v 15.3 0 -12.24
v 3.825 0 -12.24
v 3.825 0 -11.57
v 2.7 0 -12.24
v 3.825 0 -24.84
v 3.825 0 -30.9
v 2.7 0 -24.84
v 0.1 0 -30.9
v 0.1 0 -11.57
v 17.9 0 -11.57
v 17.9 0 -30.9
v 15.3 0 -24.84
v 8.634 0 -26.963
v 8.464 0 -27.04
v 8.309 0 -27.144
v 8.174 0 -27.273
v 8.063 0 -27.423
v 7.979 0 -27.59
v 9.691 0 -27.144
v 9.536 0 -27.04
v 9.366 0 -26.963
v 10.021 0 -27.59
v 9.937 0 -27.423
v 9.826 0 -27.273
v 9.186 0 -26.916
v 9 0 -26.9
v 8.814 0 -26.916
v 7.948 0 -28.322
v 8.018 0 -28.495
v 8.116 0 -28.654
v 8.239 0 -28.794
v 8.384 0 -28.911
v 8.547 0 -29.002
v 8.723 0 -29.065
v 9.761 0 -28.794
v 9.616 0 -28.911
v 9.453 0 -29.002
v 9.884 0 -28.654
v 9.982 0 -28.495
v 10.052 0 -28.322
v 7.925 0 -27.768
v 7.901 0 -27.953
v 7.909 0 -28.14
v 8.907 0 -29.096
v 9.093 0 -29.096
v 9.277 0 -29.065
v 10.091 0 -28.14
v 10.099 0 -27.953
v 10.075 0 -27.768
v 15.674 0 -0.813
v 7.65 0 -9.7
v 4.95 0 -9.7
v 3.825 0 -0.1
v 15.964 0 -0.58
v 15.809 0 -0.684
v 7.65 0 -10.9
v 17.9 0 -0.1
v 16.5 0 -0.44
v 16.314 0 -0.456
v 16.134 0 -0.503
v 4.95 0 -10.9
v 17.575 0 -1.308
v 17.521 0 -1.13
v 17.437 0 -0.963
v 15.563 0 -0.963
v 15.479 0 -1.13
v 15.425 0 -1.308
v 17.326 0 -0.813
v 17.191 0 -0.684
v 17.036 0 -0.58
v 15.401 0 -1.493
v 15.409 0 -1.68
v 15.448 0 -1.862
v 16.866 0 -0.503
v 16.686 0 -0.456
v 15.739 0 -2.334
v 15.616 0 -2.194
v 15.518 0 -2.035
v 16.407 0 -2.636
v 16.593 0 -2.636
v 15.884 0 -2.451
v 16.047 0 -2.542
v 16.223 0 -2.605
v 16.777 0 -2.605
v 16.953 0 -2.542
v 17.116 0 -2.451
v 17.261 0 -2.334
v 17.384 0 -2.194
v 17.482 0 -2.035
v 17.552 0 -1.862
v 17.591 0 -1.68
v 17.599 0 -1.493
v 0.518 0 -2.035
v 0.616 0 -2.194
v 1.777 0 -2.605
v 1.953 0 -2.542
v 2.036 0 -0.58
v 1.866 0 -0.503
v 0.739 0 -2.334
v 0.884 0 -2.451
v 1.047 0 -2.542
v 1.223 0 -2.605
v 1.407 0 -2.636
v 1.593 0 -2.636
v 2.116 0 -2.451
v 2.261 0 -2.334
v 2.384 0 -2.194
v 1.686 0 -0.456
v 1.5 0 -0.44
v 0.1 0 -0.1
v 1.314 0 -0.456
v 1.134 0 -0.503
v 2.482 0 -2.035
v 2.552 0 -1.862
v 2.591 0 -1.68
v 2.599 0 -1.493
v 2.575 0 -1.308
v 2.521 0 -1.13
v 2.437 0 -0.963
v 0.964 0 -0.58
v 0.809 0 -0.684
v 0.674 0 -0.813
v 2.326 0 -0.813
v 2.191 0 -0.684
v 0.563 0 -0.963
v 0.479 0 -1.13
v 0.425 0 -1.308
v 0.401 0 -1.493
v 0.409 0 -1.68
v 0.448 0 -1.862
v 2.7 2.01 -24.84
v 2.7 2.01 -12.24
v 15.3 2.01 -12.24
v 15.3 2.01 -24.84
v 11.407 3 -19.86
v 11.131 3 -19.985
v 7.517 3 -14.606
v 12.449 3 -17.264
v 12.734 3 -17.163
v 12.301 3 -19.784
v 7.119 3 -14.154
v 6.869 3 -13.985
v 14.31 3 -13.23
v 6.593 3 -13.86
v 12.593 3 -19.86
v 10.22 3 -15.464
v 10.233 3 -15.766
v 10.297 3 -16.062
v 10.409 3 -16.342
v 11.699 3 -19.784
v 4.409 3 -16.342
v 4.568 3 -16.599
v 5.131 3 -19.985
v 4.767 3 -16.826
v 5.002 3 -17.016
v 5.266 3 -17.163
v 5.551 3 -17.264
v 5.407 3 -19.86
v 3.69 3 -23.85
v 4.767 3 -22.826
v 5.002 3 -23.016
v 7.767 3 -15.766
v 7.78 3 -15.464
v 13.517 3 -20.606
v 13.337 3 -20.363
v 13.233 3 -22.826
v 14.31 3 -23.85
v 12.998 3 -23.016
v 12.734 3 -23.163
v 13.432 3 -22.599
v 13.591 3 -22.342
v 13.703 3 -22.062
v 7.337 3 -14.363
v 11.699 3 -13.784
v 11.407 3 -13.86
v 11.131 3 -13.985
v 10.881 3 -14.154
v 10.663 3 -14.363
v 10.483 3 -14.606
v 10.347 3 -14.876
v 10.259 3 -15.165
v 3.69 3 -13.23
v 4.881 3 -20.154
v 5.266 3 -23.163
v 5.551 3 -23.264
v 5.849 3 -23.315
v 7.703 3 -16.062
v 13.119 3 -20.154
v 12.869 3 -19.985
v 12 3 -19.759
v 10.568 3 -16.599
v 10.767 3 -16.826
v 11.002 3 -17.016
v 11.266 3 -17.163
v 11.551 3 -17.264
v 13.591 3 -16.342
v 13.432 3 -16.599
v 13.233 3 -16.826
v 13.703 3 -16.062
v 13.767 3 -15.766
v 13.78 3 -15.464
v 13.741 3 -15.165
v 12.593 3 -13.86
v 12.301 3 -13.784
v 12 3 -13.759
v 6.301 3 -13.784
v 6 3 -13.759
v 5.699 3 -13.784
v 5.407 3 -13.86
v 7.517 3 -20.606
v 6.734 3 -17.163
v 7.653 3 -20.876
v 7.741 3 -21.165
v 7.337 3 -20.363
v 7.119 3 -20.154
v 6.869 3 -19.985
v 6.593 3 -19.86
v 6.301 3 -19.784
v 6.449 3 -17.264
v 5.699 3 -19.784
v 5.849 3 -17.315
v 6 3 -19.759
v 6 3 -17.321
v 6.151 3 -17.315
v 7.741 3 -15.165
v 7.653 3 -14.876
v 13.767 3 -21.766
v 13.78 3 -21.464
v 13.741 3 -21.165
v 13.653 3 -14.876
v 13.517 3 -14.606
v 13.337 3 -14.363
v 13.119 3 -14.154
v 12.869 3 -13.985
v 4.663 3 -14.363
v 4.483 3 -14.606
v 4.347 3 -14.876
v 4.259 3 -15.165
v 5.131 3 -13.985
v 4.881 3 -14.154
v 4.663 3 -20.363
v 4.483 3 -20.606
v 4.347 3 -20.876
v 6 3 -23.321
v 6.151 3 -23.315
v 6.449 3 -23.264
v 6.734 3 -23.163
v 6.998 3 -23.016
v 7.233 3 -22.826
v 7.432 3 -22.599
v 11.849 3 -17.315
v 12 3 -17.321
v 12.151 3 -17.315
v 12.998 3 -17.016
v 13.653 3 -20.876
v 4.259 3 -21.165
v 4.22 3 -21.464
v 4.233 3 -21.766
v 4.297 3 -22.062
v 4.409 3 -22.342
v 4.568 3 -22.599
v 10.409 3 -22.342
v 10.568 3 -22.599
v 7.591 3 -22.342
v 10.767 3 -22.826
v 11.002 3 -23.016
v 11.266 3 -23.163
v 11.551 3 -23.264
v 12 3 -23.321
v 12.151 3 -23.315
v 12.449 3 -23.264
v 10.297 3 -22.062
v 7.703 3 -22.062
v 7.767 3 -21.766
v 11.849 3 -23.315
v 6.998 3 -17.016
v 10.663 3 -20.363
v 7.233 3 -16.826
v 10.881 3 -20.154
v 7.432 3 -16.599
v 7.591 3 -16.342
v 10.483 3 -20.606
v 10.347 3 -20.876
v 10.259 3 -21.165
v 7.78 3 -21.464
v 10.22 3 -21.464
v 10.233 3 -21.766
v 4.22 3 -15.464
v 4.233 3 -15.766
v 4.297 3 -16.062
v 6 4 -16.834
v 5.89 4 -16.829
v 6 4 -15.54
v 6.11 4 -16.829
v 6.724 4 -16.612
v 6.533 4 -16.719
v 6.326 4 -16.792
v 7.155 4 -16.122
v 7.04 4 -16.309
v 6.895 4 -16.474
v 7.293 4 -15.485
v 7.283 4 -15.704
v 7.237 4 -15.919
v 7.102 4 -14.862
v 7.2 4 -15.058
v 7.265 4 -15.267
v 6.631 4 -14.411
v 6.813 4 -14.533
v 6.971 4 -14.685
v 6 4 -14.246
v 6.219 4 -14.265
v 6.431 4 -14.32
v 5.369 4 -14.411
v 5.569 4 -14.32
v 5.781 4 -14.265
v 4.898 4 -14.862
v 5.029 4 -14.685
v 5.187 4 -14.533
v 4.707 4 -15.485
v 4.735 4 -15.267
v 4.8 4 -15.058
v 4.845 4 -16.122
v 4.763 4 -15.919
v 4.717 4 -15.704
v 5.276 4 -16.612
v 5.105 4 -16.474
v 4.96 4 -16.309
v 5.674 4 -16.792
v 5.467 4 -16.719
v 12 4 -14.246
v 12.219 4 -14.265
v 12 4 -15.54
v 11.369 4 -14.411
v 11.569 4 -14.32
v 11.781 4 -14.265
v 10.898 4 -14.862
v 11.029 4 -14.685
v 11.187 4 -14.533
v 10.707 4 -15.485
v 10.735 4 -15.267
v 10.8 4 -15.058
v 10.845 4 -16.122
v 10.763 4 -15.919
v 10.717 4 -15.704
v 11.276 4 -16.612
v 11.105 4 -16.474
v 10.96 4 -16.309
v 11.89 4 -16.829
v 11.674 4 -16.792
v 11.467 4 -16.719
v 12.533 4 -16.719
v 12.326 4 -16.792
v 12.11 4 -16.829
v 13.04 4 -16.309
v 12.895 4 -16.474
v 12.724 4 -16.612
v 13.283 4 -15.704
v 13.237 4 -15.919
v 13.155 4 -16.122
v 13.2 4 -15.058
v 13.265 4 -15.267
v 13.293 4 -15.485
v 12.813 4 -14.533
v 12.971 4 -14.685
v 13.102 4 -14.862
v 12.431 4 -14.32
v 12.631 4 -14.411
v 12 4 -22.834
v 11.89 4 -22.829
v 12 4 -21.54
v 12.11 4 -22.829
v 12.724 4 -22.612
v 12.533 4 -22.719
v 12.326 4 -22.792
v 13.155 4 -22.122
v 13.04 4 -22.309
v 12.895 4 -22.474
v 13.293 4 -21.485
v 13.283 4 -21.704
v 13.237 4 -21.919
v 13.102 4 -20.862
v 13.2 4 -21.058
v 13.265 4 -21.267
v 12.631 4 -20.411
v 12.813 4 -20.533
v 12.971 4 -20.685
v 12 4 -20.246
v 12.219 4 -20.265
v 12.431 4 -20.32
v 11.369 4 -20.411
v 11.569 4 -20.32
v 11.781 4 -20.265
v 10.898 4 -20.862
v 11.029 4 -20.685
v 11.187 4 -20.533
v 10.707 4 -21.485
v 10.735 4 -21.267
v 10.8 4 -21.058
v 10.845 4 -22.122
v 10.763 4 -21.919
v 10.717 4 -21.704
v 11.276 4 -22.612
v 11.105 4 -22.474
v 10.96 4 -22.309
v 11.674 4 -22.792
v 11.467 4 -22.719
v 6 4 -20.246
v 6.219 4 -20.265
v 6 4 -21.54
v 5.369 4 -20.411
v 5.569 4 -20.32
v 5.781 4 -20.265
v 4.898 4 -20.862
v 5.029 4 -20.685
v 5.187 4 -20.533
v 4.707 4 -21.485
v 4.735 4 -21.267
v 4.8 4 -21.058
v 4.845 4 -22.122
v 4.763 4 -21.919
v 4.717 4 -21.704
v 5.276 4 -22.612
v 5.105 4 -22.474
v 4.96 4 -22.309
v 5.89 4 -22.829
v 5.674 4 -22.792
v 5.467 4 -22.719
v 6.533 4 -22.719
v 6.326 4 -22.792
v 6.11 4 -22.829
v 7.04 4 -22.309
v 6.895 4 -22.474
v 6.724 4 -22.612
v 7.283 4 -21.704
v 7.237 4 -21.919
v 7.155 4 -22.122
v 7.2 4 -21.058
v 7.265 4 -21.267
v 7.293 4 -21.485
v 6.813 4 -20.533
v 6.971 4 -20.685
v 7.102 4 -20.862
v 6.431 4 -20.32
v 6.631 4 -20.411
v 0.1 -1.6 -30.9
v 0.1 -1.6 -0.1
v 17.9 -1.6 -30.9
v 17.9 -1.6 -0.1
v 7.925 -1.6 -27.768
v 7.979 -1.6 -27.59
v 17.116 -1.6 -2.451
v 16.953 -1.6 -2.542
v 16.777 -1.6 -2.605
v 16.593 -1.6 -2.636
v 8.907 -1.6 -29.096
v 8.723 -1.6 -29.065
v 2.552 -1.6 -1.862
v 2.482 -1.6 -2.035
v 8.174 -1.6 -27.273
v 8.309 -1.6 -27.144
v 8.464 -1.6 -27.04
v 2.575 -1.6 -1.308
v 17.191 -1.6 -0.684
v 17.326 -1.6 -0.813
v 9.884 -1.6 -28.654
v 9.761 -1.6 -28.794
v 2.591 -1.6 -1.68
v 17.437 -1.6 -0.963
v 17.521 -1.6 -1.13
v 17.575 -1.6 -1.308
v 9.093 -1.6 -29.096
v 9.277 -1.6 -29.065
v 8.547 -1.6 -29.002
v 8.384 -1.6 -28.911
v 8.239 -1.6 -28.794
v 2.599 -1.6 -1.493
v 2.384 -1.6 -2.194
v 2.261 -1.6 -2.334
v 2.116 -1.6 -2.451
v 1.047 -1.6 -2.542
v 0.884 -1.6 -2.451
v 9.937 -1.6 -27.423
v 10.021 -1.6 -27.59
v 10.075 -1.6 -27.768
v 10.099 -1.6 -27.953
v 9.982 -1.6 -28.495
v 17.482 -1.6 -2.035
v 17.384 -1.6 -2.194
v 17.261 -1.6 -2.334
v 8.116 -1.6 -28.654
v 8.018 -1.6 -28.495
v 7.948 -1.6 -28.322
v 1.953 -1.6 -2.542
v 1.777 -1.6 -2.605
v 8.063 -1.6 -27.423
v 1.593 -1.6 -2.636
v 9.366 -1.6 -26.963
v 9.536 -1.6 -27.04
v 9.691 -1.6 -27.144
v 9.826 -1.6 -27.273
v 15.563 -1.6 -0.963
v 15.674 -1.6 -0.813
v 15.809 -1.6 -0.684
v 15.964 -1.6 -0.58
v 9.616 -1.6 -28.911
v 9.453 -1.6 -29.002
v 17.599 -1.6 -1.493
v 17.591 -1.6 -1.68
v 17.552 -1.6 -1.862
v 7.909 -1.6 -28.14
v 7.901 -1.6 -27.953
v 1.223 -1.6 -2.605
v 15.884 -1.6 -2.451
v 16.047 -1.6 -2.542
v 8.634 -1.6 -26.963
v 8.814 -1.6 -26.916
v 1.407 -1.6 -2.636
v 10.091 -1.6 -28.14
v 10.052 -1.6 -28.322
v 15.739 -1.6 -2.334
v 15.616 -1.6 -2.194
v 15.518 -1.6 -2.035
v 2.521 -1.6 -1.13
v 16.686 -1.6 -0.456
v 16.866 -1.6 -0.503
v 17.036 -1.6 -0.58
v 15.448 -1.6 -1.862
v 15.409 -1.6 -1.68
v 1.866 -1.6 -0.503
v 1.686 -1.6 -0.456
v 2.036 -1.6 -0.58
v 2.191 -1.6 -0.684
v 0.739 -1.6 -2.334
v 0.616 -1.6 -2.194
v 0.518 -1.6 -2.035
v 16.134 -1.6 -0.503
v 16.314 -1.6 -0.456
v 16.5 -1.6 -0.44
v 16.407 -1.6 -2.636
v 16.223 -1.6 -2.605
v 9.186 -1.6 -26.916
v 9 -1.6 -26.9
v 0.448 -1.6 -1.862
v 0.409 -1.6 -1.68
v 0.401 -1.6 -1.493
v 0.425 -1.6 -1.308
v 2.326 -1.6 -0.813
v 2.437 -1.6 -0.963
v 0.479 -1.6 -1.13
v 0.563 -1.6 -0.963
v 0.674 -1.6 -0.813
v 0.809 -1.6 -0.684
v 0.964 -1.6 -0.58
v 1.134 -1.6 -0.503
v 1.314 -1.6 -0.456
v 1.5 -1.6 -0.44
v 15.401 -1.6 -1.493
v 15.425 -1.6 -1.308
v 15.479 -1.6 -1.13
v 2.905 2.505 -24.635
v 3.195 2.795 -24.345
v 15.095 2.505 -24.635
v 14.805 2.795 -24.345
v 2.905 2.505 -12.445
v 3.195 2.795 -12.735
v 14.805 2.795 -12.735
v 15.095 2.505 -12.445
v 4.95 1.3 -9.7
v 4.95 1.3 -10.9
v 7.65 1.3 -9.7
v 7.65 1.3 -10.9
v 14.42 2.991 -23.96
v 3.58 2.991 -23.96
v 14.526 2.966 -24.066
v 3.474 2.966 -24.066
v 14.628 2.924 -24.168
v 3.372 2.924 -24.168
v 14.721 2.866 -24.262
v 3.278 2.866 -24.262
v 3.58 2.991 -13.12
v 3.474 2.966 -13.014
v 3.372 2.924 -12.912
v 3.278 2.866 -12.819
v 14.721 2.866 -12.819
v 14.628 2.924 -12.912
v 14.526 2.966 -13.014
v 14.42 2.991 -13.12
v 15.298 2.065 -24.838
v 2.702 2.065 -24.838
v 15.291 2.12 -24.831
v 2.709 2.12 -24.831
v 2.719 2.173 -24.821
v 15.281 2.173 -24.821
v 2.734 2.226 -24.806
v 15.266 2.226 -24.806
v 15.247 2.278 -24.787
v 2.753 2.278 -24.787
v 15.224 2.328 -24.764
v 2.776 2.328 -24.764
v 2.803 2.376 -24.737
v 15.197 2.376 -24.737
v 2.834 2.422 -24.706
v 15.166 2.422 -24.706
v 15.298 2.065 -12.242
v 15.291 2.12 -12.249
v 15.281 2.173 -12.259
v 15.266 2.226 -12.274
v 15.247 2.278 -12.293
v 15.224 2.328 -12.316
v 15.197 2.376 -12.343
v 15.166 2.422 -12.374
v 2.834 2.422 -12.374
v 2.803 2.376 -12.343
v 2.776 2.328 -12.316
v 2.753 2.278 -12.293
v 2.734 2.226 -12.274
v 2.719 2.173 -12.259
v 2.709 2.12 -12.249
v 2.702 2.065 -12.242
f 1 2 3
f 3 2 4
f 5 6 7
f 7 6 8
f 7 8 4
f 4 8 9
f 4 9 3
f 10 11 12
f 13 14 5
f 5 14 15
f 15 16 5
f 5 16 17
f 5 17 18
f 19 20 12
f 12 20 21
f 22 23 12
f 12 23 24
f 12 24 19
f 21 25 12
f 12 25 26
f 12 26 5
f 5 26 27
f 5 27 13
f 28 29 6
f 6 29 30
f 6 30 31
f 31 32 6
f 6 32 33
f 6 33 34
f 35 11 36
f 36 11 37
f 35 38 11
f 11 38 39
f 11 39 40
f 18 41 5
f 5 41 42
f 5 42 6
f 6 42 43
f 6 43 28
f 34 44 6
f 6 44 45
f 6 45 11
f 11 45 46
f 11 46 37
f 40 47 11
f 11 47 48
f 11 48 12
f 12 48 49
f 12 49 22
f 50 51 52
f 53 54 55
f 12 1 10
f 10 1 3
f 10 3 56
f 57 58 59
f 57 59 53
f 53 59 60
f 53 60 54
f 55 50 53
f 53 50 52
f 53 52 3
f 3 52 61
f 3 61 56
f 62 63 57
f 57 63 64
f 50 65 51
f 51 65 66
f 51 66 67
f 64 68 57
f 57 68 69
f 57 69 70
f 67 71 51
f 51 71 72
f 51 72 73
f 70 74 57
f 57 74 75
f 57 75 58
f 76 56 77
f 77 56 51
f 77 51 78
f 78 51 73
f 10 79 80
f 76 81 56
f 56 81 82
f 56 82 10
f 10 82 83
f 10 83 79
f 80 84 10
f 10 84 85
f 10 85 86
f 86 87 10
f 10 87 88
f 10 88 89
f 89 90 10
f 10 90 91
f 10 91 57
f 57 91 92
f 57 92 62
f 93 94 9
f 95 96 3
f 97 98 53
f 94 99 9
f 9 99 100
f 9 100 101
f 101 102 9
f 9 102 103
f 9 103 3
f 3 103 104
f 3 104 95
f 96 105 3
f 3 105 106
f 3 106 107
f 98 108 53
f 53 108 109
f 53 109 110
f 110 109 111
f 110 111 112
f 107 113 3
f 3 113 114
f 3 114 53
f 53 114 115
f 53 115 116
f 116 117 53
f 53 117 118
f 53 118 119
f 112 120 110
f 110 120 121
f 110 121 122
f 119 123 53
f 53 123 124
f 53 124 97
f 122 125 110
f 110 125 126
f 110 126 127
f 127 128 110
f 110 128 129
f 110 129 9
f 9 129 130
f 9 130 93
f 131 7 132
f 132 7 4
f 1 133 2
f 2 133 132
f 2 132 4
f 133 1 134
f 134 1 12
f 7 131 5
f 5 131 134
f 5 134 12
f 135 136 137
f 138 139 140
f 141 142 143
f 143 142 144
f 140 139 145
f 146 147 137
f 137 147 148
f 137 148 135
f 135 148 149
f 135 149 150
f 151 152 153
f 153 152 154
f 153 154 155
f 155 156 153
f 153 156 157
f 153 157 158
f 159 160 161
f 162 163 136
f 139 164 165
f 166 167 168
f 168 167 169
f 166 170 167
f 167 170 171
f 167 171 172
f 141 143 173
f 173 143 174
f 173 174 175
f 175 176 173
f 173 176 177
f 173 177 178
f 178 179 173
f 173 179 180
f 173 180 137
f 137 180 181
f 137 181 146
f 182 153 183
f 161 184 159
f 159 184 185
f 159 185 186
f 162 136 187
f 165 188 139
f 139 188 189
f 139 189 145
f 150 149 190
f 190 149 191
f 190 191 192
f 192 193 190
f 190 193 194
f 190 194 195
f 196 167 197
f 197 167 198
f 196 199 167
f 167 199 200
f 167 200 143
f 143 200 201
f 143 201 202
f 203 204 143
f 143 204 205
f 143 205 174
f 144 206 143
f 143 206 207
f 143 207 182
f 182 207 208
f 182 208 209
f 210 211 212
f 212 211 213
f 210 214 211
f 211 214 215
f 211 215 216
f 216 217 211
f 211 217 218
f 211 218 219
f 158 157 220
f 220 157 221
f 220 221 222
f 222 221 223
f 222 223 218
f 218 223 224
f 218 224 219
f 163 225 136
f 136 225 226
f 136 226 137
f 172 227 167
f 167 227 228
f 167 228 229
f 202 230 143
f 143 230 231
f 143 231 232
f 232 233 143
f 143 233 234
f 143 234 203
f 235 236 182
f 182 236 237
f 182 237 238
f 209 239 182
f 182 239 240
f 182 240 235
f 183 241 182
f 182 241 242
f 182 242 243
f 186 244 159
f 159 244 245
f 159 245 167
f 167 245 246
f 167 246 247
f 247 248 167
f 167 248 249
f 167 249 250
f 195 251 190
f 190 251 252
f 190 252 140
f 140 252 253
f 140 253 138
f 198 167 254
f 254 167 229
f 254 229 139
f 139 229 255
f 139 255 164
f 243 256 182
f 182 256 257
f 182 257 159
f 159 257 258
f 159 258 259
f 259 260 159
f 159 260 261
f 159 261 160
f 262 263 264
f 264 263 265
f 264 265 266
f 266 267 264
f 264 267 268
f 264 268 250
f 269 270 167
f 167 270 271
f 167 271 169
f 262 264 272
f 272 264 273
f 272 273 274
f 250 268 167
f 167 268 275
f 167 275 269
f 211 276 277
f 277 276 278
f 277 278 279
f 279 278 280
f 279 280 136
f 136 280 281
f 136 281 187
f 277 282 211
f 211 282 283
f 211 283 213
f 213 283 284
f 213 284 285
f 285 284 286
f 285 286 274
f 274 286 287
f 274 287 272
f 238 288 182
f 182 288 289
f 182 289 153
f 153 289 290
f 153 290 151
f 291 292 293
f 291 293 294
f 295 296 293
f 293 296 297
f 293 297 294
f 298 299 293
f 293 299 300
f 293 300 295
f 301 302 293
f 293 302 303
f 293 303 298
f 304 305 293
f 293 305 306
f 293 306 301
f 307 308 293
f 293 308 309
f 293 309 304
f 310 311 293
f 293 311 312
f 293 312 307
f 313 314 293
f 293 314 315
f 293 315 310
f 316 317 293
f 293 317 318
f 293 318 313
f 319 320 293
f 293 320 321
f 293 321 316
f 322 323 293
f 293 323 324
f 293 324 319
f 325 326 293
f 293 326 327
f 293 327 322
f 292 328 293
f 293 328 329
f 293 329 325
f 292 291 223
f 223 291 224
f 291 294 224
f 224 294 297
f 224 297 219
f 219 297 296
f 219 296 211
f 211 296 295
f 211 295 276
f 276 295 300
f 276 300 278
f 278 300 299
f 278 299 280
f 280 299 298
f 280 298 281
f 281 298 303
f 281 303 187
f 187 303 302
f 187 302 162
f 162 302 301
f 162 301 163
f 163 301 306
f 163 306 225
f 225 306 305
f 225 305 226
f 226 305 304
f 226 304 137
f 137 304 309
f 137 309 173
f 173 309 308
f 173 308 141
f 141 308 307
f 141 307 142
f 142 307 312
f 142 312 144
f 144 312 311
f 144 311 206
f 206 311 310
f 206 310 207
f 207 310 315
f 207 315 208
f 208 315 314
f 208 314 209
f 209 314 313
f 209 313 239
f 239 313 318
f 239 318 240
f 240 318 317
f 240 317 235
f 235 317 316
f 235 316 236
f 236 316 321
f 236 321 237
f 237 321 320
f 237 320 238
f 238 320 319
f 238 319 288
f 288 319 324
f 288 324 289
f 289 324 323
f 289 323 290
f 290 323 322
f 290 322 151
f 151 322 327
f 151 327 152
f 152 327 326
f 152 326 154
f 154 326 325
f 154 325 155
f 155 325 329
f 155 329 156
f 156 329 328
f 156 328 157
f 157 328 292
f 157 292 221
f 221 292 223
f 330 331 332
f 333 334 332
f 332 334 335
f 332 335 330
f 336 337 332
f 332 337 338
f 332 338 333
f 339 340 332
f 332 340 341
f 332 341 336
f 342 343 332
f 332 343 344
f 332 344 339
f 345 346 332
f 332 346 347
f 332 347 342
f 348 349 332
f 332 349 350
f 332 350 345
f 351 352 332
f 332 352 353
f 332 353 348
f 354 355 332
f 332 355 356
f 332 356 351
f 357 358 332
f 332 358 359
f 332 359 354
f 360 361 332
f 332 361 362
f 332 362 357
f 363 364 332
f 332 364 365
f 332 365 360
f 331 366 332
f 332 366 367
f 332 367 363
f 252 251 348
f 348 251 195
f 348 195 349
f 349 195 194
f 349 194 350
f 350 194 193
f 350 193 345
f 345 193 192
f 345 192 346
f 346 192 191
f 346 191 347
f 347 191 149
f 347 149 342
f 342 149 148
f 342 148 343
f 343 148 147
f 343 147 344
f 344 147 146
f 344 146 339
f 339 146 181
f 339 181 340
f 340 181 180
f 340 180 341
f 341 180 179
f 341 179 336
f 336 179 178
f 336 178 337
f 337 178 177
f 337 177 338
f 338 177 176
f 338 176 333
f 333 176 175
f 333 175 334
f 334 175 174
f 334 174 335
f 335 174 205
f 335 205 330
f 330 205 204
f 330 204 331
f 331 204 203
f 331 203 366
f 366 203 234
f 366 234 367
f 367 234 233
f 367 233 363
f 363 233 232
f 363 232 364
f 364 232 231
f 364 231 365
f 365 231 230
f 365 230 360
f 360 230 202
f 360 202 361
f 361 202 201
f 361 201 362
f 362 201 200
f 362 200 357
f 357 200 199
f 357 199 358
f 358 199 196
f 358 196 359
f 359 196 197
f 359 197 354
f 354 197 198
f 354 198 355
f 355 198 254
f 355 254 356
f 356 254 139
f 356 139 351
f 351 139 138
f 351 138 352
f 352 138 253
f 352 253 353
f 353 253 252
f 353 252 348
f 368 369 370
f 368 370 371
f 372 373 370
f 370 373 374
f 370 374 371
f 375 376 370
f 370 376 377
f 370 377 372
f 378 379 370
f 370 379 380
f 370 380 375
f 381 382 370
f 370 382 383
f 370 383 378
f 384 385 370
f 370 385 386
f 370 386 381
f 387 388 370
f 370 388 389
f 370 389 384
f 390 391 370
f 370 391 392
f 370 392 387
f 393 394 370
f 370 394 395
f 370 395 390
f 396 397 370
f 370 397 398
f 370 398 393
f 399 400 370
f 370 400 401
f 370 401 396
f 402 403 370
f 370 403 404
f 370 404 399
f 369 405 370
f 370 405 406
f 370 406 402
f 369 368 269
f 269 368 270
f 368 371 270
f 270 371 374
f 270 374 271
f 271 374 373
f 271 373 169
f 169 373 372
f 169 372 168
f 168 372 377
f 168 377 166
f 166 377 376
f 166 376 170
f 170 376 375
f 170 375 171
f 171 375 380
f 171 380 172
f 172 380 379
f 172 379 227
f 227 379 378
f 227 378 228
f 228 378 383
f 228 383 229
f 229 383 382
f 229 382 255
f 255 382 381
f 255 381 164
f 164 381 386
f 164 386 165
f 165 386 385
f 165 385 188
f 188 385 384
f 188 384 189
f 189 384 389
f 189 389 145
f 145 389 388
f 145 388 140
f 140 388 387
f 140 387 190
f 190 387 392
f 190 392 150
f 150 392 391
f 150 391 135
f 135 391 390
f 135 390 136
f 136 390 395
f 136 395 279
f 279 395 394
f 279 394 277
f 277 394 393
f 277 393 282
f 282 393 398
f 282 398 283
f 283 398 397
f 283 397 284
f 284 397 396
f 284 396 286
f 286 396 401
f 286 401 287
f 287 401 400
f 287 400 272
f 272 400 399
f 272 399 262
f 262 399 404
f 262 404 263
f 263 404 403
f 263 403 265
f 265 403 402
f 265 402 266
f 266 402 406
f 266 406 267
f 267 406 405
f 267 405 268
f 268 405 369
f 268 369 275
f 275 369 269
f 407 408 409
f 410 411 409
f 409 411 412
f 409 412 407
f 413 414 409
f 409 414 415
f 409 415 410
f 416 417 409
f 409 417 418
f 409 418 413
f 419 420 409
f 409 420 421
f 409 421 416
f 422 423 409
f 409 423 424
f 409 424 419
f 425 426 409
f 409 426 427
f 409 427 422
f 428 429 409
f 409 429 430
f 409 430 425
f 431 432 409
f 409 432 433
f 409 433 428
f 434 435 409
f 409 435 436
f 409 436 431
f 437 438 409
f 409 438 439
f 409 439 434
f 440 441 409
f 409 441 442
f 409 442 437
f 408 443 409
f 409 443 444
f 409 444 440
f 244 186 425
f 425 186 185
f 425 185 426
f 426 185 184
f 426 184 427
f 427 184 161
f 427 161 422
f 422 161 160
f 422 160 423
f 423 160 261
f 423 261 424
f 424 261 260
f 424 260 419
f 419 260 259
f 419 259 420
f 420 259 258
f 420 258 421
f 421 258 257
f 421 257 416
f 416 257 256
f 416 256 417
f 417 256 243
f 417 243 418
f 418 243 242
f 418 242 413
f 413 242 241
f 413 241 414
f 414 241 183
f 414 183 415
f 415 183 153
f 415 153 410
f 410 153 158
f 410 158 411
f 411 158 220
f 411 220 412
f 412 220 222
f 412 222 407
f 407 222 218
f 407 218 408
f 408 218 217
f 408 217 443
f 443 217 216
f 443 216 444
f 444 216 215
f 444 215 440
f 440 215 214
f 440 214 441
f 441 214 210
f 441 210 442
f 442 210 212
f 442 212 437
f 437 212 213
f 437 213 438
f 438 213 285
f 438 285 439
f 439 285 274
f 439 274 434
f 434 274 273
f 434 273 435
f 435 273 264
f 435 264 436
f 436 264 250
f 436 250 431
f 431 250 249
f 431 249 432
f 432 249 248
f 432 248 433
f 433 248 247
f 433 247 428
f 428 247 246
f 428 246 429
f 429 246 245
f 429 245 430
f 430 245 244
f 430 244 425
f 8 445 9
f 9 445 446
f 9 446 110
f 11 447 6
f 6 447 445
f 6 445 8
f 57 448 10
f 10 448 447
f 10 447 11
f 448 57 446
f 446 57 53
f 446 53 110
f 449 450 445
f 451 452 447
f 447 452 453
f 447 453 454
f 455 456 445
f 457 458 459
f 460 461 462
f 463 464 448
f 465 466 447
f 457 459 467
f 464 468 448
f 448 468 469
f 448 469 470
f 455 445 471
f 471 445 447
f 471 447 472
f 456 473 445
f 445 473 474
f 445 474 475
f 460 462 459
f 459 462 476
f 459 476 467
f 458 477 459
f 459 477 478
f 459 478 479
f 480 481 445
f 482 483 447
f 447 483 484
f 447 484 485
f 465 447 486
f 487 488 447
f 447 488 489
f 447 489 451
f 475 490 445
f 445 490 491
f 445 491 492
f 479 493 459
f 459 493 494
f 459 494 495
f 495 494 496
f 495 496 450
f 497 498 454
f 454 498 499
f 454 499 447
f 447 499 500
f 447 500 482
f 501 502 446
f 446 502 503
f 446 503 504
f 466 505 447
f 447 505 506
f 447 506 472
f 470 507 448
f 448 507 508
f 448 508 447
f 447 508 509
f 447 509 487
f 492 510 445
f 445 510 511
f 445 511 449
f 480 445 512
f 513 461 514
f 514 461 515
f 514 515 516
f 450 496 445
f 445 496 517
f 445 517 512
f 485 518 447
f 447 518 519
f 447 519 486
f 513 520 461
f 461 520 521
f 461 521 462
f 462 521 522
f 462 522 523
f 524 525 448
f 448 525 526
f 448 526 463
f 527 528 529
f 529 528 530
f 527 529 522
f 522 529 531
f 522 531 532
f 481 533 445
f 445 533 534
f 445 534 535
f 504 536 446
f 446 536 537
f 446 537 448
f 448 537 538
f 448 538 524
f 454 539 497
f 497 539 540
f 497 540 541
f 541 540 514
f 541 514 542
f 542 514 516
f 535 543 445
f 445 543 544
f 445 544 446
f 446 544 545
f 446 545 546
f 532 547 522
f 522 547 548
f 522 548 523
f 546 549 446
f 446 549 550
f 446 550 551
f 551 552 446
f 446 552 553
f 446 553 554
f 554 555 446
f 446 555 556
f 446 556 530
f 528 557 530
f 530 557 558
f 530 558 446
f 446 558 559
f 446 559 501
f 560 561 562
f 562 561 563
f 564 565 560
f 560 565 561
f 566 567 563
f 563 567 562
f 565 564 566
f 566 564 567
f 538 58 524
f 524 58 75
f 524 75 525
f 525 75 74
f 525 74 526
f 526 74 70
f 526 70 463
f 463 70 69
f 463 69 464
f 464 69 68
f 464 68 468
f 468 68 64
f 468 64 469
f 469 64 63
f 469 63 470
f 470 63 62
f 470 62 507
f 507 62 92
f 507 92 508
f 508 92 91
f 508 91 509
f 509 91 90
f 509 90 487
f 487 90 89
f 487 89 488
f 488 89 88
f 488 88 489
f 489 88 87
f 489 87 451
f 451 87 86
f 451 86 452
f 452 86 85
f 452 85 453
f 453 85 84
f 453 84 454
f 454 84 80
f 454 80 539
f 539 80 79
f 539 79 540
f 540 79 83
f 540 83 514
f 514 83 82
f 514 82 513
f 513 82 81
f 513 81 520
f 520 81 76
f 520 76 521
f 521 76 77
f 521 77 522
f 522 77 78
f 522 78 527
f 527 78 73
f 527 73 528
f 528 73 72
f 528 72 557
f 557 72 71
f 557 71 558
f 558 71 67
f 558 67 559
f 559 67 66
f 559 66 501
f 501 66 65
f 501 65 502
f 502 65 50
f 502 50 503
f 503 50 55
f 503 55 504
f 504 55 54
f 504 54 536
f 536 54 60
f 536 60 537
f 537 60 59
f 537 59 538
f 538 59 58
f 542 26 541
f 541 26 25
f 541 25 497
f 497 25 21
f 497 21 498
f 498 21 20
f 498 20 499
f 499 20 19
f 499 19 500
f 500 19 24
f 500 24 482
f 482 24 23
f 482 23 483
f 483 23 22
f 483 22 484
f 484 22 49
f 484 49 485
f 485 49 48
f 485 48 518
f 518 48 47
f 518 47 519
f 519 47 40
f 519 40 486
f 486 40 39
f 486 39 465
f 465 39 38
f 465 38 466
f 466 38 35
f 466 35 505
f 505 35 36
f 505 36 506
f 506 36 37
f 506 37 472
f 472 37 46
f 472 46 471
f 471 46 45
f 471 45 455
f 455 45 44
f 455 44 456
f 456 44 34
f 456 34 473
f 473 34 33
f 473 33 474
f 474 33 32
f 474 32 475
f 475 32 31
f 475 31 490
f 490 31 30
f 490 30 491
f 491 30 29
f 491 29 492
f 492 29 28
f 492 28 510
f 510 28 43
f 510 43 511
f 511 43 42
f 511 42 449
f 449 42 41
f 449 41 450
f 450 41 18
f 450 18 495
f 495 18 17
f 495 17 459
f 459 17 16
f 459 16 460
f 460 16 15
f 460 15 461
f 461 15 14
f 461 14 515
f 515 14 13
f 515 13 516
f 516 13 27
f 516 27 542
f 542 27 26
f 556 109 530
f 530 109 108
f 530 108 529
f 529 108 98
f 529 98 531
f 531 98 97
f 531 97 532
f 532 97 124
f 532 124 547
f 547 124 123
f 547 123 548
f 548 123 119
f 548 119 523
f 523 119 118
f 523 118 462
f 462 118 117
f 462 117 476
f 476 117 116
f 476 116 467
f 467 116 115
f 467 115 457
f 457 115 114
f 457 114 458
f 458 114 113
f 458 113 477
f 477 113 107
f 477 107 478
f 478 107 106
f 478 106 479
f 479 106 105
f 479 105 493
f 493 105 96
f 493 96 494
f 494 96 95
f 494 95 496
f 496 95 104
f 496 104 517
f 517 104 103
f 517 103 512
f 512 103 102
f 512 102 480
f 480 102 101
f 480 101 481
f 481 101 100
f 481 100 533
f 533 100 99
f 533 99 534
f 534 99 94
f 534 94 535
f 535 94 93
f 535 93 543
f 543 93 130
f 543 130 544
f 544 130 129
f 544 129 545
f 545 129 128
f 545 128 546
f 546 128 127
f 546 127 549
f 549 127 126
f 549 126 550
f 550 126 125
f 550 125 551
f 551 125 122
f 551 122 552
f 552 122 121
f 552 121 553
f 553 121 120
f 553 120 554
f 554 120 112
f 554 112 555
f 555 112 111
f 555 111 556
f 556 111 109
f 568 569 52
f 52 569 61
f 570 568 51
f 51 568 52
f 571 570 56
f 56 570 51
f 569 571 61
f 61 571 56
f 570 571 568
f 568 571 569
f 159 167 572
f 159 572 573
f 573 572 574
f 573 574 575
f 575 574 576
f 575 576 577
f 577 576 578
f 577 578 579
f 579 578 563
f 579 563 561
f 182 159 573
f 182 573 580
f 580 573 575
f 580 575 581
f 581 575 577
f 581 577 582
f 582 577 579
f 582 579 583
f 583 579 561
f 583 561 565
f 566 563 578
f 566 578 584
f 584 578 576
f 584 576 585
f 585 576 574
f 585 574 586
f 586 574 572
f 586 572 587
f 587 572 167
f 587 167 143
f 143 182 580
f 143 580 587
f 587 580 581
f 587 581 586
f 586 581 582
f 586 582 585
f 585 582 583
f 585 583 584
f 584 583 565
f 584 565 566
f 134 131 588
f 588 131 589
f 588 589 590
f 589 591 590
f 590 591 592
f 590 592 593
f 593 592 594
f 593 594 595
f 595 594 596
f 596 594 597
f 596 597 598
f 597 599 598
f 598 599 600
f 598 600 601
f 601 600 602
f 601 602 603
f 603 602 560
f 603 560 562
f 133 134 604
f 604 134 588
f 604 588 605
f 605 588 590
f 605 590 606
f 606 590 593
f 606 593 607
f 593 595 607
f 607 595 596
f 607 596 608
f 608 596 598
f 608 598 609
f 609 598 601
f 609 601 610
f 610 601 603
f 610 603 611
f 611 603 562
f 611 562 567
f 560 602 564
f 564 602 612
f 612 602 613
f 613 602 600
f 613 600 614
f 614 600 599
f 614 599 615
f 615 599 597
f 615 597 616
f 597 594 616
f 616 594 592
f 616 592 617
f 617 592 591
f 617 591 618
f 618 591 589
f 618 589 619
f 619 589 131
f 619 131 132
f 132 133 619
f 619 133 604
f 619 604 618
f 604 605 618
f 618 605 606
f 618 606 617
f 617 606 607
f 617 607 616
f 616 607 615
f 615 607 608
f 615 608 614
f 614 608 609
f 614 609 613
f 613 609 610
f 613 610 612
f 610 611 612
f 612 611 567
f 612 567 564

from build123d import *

# Parameters (mm, degrees)
SKETCH1_W           = 12.6
SKETCH1_H           = 12.6
BOSS_EXTRUDE1_DEPTH = 1.3
SKETCH3_R           = 1.29375
BOSS_EXTRUDE3_DEPTH = 2.7
DRAFT1_ANGLE        = 26
SKETCH4_W           = 12.6
SKETCH4_H           = 12.6
BOSS_EXTRUDE4_DEPTH = 1.7
SKETCH5_W           = 17.8
SKETCH5_H           = 30.8
BOSS_EXTRUDE5_DEPTH = 1.6
FILLET1_SIZE        = 0.7
SKETCH7_R           = 1.1
CUT_EXTRUDE1_DEPTH  = 36.933549783
SKETCH8_W           = 2.7
SKETCH8_H           = 1.2
CAPACITOR_DEPTH     = 1.3
FILLET5_R           = 0.7


with BuildPart() as part:
    # Sketch1 → Boss-Extrude1 (new body)
    with BuildSketch(Plane(origin=(0, 0, 0), x_dir=(1, 0, 0), z_dir=(0, 1, 0))):
        with Locations((9, 18.54)):
            Rectangle(SKETCH1_W, SKETCH1_H)
    extrude(amount=BOSS_EXTRUDE1_DEPTH)

    # Sketch3 → Boss-Extrude3 (add)
    with BuildSketch(Plane(origin=(0, 1.3, 0), x_dir=(1, 0, 0), z_dir=(0, 1, 0))):
        with Locations(Location((6, 21.54, 0), (0, 0, 90))):
            Circle(SKETCH3_R)
        with Locations(Location((12, 21.54, 0), (0, 0, 90))):
            Circle(SKETCH3_R)
        with Locations(Location((12, 15.54, 0), (0, 0, 90))):
            Circle(SKETCH3_R)
        with Locations(Location((6, 15.54, 0), (0, 0, 90))):
            Circle(SKETCH3_R)
    extrude(amount=BOSS_EXTRUDE3_DEPTH)

    # Draft1
    draft1_faces = [part.faces().sort_by_distance(p)[0] for p in [
        (6, 2.65, -14.24625),
        (12, 2.65, -14.24625),
        (12, 2.65, -20.24625),
        (6, 2.65, -20.24625),
    ]]
    draft(draft1_faces, Plane(origin=(6, 4, -21.54), x_dir=(0, 0, 1), z_dir=(0, 1, 0)), DRAFT1_ANGLE)

    # Sketch4 → Boss-Extrude4 (add)
    with BuildSketch(Plane(origin=(0, 1.3, 0), x_dir=(1, 0, 0), z_dir=(0, 1, 0))):
        with Locations((9, 18.54)):
            Rectangle(SKETCH4_W, SKETCH4_H)
    extrude(amount=BOSS_EXTRUDE4_DEPTH)

    # Sketch5 → Boss-Extrude5 (add)
    with BuildSketch(Plane.XZ):
        with Locations((9, -15.5)):
            Rectangle(SKETCH5_W, SKETCH5_H)
    extrude(amount=BOSS_EXTRUDE5_DEPTH)

    # Fillet1
    fillet1_edges = [part.edges().sort_by_distance(p)[0] for p in [
        (2.7, 3, -18.54),
        (9, 3, -12.24),
        (15.3, 3, -18.54),
        (9, 3, -24.84),
    ]]
    chamfer(fillet1_edges, length=FILLET1_SIZE)

    # Sketch7 → Cut-Extrude1 (cut, through all)
    with BuildSketch(Plane(origin=(0, 0, 0), x_dir=(1, 0, 0), z_dir=(0, 1, 0))):
        with Locations(Location((1.5, 1.54, 0), (0, 0, 270))):
            Circle(SKETCH7_R)
        with Locations(Location((9, 28, 0), (0, 0, 270))):
            Circle(SKETCH7_R)
        with Locations(Location((16.5, 1.54, 0), (0, 0, 270))):
            Circle(SKETCH7_R)
    extrude(amount=-CUT_EXTRUDE1_DEPTH, mode=Mode.SUBTRACT)

    # Sketch8 → capacitor (add)
    with BuildSketch(Plane(origin=(0, 0, 0), x_dir=(1, 0, 0), z_dir=(0, 1, 0))):
        with Locations((6.3, 10.3)):
            Rectangle(SKETCH8_W, SKETCH8_H)
    extrude(amount=CAPACITOR_DEPTH)

    # Fillet5
    fillet5_edges = [part.edges().sort_by_distance(p)[0] for p in [
        (3.4, 3, -18.54),
        (9, 3, -24.14),
        (14.6, 3, -18.54),
        (9, 3, -12.94),
        (9, 2.3, -12.24),
        (15.3, 2.3, -18.54),
        (9, 2.3, -24.84),
        (2.7, 2.3, -18.54),
    ]]
    fillet(fillet5_edges, radius=FILLET5_R)


solid = part.part
